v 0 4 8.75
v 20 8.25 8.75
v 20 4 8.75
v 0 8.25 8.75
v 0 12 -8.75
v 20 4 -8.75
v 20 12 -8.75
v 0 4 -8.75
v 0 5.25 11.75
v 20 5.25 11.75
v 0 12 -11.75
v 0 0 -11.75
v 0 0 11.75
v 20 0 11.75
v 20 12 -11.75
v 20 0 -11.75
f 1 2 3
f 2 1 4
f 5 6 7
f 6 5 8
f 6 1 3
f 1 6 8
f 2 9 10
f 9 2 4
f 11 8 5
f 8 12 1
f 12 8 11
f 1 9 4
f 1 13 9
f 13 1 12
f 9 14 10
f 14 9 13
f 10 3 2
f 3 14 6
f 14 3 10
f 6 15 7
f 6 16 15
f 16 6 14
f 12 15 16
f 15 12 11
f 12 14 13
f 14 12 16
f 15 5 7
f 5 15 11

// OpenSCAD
shelfHeight = 17.5;
spacerSize = 12;
spacerGap = 4;
spacerLength = 20;


difference(){
    spacer();
    shelf();
}


module spacer(){
    translate([0, 0, -(shelfHeight+6)/2])
        cube(size=[ spacerLength, spacerSize, shelfHeight+6], center=false);
}


module shelf() {
    translate([-50, spacerGap, -shelfHeight/2]) 
        #cube(size=[100, 100, shelfHeight], center=false);    
    #translate([-50, 17, 0]) 
        rotate([45, 0, 0])     
        cube(size=[100, 100, shelfHeight], center=false);    
}
